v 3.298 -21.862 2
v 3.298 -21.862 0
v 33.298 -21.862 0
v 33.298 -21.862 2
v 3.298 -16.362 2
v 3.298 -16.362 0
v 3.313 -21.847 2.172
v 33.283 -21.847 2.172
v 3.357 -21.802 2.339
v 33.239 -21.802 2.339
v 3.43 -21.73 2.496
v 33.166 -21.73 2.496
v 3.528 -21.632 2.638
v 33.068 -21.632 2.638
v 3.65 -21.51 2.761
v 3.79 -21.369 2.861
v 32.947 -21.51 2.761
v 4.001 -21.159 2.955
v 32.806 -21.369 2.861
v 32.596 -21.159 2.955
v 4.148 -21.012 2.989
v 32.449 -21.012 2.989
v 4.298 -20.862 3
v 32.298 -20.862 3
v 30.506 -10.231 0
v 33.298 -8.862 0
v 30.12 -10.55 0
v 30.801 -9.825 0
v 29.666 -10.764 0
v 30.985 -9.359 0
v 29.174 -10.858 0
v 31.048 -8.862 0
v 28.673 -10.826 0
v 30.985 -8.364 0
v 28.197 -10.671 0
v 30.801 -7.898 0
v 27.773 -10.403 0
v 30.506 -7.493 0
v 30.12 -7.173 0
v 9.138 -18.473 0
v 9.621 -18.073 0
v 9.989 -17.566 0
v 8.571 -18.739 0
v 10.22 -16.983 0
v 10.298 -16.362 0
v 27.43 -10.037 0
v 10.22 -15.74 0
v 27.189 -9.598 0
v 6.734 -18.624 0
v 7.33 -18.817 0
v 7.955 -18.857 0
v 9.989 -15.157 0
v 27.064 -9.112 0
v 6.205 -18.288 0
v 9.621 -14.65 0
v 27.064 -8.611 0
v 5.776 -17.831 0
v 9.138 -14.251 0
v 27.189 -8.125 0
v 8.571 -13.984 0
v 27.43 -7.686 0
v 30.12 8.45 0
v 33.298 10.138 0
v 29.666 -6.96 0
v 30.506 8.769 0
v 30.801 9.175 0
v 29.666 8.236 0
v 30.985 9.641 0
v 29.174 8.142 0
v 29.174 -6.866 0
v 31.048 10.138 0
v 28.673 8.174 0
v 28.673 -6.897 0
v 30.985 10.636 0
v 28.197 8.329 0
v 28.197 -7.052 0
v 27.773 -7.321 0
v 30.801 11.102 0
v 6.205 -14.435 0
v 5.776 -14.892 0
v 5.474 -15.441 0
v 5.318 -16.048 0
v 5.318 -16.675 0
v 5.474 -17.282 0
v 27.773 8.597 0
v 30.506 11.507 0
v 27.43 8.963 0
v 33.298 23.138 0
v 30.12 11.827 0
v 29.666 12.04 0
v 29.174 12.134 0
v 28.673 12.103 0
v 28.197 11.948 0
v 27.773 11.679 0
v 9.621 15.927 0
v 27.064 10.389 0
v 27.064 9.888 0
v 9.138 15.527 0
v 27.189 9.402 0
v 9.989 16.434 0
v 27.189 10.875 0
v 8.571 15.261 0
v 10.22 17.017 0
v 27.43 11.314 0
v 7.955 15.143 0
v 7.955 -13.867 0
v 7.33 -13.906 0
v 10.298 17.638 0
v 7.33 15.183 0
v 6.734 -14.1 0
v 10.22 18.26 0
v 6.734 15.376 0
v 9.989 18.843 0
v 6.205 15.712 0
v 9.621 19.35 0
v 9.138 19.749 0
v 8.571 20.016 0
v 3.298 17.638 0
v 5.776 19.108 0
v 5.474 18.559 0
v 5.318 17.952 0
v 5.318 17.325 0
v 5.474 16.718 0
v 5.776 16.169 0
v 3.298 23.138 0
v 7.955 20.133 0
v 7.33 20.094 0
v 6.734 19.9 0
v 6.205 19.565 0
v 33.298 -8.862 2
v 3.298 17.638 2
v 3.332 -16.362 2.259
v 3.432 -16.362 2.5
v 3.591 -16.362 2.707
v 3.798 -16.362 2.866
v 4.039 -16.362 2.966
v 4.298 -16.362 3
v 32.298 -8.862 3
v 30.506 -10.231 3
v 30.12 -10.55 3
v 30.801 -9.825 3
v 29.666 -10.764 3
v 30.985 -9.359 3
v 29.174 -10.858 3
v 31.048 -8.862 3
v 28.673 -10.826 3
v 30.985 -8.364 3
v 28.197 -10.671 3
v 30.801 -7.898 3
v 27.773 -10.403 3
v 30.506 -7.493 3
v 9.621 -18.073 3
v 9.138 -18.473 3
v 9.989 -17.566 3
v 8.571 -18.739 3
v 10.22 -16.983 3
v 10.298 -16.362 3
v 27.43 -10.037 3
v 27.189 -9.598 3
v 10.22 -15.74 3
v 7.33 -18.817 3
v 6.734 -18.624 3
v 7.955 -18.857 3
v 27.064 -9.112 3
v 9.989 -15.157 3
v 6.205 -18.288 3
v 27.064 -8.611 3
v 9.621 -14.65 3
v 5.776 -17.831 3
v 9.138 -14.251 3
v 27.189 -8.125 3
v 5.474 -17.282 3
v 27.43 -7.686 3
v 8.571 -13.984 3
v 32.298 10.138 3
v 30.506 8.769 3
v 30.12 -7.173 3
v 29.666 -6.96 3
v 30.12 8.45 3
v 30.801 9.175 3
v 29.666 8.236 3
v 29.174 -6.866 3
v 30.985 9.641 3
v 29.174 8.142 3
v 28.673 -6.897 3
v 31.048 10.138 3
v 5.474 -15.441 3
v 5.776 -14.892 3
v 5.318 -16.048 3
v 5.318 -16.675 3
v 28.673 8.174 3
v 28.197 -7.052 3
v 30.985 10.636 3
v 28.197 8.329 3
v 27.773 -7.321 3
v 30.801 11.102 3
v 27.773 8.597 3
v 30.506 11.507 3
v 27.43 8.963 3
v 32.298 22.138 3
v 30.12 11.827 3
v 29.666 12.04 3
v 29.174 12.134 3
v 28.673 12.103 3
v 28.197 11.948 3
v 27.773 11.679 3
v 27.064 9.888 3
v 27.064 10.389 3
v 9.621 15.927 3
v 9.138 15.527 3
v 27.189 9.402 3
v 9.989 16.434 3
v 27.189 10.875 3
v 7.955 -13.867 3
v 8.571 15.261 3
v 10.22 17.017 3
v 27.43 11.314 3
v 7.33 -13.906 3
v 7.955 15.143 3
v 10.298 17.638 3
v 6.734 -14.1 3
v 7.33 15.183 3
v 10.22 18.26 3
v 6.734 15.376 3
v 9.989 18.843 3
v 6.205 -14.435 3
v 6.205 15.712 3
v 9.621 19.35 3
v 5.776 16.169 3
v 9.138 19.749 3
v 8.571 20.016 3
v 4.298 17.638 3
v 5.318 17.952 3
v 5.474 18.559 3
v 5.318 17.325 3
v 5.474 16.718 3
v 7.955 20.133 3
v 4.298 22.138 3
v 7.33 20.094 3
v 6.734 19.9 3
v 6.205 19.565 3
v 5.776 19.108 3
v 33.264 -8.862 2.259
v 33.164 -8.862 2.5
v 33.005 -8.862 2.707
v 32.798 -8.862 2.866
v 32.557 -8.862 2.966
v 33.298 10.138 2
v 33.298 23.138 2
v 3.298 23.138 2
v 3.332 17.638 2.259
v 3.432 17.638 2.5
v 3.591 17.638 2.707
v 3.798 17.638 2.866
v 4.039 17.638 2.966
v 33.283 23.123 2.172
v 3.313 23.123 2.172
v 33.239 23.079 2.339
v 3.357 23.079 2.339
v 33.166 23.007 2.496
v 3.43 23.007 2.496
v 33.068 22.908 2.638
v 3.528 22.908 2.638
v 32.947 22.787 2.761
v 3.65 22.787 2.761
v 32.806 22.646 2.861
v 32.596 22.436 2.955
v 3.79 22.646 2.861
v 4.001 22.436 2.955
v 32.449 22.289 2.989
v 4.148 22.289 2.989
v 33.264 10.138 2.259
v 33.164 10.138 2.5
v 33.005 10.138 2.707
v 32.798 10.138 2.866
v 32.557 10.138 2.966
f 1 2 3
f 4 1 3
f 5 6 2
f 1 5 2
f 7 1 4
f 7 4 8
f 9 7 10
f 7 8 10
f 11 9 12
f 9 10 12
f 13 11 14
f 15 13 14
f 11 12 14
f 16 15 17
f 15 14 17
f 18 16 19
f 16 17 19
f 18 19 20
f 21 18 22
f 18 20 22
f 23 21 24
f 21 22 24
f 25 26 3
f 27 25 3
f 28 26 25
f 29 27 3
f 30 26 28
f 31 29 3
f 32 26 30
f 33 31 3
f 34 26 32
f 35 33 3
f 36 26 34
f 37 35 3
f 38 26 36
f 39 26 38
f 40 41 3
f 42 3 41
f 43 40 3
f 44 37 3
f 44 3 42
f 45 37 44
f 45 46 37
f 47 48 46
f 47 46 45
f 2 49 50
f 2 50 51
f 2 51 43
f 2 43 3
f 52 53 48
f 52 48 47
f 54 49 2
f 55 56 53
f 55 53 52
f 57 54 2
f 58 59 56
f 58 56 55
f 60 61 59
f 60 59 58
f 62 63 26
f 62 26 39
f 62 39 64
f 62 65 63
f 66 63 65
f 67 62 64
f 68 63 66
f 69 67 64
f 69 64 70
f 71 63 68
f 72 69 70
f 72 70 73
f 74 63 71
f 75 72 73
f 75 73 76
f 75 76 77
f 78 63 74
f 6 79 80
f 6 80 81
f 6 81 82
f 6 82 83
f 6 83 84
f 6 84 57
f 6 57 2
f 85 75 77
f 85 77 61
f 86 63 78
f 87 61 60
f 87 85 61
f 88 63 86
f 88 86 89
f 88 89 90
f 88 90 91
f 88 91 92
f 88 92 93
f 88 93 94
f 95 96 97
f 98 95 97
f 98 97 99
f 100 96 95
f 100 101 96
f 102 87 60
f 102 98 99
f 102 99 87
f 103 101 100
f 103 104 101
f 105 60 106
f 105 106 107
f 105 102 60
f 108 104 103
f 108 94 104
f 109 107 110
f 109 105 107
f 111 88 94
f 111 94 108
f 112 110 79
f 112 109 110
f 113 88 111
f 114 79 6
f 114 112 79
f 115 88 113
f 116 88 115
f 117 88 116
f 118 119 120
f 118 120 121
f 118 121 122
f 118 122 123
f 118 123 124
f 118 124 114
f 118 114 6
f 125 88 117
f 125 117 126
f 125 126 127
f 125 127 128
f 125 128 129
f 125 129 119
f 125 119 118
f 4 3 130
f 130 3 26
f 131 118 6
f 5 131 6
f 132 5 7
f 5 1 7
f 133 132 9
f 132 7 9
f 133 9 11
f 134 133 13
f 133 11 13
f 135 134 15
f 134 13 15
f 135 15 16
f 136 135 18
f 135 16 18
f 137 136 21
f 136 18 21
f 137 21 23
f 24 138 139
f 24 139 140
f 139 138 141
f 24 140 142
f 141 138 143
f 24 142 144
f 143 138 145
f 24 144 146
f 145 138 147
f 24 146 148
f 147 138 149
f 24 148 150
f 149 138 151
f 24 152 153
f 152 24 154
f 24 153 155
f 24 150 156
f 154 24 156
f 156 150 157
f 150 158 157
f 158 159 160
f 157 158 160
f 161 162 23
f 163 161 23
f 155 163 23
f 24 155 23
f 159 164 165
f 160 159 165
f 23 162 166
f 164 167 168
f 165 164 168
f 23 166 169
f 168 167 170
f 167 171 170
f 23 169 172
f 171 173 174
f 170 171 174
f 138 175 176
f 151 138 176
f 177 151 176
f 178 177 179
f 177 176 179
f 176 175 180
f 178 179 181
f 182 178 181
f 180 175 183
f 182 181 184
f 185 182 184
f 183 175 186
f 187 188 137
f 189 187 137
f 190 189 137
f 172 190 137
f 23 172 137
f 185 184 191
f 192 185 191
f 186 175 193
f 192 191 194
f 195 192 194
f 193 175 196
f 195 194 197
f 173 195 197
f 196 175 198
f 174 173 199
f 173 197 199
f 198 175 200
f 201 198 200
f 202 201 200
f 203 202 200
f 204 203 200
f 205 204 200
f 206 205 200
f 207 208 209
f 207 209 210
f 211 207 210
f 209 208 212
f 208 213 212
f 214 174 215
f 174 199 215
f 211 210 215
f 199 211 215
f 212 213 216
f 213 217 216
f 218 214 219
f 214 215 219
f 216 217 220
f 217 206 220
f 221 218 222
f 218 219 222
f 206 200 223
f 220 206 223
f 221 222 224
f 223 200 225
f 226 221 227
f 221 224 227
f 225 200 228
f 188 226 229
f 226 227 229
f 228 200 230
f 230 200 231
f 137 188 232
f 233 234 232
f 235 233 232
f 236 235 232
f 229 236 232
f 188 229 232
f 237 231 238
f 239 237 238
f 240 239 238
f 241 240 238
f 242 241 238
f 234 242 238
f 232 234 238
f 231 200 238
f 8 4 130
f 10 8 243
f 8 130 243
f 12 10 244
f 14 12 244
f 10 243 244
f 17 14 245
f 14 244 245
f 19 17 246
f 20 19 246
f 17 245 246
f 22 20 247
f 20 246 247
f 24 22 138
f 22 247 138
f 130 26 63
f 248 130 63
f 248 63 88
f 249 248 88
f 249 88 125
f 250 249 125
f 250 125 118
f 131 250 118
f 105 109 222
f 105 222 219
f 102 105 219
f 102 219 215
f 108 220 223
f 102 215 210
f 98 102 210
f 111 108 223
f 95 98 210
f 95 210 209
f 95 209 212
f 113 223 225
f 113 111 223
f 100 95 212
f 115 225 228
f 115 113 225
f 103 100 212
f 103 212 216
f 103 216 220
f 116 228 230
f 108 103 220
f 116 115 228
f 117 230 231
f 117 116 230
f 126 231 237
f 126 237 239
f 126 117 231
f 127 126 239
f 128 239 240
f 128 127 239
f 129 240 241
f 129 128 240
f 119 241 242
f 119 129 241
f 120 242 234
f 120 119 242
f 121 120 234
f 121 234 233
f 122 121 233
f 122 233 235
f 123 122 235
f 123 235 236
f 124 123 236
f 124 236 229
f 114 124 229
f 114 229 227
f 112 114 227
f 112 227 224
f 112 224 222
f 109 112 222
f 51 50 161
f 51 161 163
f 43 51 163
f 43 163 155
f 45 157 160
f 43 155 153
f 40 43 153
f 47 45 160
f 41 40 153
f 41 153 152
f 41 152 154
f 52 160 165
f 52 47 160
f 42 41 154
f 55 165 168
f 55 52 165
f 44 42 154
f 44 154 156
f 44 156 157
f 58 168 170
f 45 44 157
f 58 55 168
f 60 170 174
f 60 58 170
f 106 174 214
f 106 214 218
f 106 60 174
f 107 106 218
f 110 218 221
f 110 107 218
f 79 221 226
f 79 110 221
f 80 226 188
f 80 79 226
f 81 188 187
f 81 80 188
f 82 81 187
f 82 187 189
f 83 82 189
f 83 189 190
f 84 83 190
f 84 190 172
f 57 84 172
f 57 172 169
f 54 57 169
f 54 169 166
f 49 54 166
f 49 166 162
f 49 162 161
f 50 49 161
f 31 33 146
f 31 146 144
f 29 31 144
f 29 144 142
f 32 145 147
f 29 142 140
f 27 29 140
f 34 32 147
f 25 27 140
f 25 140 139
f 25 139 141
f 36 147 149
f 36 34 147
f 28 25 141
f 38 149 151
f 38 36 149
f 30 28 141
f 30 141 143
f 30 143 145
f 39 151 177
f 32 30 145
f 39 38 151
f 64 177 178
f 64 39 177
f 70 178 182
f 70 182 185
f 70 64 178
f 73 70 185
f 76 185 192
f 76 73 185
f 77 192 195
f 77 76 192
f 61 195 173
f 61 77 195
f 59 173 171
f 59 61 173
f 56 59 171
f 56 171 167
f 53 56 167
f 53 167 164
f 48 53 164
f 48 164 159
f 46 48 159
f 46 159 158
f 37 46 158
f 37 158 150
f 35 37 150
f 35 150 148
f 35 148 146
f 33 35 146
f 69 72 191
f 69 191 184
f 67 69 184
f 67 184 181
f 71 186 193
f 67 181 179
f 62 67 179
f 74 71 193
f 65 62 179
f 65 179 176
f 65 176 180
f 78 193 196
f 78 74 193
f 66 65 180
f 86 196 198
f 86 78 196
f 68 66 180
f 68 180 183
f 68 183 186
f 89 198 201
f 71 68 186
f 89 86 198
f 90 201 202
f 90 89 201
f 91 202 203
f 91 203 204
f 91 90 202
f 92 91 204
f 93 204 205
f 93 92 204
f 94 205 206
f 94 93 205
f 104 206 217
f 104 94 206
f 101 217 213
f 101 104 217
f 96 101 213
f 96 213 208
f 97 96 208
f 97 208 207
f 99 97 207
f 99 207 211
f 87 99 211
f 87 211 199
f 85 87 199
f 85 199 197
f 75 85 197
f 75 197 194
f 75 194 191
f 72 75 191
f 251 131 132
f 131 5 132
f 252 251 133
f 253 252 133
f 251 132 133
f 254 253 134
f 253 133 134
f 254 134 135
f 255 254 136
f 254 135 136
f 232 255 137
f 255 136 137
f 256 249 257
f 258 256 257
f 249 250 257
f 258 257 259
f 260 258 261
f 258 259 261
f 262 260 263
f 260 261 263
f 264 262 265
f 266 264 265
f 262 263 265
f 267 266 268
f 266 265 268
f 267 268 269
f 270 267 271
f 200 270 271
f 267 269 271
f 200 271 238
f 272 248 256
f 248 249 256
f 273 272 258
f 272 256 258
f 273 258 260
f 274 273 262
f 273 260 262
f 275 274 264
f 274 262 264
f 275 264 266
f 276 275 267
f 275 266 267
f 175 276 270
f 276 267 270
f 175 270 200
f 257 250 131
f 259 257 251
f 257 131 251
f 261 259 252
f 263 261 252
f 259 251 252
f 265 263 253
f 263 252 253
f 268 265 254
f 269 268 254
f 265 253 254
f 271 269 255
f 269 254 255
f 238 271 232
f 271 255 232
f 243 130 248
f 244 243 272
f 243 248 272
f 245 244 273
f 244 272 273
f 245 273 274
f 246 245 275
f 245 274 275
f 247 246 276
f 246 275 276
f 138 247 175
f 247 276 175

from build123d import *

# Parameters (mm, degrees)
SKETCH_R   = 2
SKETCH_R_2 = 2.5
PAD_DEPTH  = 3
FILLET_R   = 1


with BuildPart() as part:
    # Sketch → Pad (new body)
    with BuildSketch(Plane.XY):
        Polygon((3.298189, -21.861723), (33.298189, -21.861723), (33.298189, -8.861723), (33.298189, 10.138277), (33.298189, 23.138277), (3.298189, 23.138277), (3.298189, 17.638277), (3.298189, -16.361723), align=None)
        with Locations((29.048189, 10.138277)):
            Circle(SKETCH_R, mode=Mode.SUBTRACT)
        with Locations((29.048189, -8.861723)):
            Circle(SKETCH_R, mode=Mode.SUBTRACT)
        with Locations((7.798189, -16.361723)):
            Circle(SKETCH_R_2, mode=Mode.SUBTRACT)
        with Locations((7.798189, 17.638277)):
            Circle(SKETCH_R_2, mode=Mode.SUBTRACT)
    extrude(amount=PAD_DEPTH)

    # Fillet
    fillet_edges = [part.edges().sort_by_distance(p)[0] for p in [
        (18.298189, 23.138277, 3),
        (33.298189, 0.638277, 3),
        (33.298189, 16.638277, 3),
        (33.298189, -15.361723, 3),
        (18.298189, -21.861723, 3),
        (3.298189, 0.638277, 3),
        (3.298189, 20.388277, 3),
        (3.298189, -19.111723, 3),
    ]]
    fillet(fillet_edges, radius=FILLET_R)


solid = part.part
